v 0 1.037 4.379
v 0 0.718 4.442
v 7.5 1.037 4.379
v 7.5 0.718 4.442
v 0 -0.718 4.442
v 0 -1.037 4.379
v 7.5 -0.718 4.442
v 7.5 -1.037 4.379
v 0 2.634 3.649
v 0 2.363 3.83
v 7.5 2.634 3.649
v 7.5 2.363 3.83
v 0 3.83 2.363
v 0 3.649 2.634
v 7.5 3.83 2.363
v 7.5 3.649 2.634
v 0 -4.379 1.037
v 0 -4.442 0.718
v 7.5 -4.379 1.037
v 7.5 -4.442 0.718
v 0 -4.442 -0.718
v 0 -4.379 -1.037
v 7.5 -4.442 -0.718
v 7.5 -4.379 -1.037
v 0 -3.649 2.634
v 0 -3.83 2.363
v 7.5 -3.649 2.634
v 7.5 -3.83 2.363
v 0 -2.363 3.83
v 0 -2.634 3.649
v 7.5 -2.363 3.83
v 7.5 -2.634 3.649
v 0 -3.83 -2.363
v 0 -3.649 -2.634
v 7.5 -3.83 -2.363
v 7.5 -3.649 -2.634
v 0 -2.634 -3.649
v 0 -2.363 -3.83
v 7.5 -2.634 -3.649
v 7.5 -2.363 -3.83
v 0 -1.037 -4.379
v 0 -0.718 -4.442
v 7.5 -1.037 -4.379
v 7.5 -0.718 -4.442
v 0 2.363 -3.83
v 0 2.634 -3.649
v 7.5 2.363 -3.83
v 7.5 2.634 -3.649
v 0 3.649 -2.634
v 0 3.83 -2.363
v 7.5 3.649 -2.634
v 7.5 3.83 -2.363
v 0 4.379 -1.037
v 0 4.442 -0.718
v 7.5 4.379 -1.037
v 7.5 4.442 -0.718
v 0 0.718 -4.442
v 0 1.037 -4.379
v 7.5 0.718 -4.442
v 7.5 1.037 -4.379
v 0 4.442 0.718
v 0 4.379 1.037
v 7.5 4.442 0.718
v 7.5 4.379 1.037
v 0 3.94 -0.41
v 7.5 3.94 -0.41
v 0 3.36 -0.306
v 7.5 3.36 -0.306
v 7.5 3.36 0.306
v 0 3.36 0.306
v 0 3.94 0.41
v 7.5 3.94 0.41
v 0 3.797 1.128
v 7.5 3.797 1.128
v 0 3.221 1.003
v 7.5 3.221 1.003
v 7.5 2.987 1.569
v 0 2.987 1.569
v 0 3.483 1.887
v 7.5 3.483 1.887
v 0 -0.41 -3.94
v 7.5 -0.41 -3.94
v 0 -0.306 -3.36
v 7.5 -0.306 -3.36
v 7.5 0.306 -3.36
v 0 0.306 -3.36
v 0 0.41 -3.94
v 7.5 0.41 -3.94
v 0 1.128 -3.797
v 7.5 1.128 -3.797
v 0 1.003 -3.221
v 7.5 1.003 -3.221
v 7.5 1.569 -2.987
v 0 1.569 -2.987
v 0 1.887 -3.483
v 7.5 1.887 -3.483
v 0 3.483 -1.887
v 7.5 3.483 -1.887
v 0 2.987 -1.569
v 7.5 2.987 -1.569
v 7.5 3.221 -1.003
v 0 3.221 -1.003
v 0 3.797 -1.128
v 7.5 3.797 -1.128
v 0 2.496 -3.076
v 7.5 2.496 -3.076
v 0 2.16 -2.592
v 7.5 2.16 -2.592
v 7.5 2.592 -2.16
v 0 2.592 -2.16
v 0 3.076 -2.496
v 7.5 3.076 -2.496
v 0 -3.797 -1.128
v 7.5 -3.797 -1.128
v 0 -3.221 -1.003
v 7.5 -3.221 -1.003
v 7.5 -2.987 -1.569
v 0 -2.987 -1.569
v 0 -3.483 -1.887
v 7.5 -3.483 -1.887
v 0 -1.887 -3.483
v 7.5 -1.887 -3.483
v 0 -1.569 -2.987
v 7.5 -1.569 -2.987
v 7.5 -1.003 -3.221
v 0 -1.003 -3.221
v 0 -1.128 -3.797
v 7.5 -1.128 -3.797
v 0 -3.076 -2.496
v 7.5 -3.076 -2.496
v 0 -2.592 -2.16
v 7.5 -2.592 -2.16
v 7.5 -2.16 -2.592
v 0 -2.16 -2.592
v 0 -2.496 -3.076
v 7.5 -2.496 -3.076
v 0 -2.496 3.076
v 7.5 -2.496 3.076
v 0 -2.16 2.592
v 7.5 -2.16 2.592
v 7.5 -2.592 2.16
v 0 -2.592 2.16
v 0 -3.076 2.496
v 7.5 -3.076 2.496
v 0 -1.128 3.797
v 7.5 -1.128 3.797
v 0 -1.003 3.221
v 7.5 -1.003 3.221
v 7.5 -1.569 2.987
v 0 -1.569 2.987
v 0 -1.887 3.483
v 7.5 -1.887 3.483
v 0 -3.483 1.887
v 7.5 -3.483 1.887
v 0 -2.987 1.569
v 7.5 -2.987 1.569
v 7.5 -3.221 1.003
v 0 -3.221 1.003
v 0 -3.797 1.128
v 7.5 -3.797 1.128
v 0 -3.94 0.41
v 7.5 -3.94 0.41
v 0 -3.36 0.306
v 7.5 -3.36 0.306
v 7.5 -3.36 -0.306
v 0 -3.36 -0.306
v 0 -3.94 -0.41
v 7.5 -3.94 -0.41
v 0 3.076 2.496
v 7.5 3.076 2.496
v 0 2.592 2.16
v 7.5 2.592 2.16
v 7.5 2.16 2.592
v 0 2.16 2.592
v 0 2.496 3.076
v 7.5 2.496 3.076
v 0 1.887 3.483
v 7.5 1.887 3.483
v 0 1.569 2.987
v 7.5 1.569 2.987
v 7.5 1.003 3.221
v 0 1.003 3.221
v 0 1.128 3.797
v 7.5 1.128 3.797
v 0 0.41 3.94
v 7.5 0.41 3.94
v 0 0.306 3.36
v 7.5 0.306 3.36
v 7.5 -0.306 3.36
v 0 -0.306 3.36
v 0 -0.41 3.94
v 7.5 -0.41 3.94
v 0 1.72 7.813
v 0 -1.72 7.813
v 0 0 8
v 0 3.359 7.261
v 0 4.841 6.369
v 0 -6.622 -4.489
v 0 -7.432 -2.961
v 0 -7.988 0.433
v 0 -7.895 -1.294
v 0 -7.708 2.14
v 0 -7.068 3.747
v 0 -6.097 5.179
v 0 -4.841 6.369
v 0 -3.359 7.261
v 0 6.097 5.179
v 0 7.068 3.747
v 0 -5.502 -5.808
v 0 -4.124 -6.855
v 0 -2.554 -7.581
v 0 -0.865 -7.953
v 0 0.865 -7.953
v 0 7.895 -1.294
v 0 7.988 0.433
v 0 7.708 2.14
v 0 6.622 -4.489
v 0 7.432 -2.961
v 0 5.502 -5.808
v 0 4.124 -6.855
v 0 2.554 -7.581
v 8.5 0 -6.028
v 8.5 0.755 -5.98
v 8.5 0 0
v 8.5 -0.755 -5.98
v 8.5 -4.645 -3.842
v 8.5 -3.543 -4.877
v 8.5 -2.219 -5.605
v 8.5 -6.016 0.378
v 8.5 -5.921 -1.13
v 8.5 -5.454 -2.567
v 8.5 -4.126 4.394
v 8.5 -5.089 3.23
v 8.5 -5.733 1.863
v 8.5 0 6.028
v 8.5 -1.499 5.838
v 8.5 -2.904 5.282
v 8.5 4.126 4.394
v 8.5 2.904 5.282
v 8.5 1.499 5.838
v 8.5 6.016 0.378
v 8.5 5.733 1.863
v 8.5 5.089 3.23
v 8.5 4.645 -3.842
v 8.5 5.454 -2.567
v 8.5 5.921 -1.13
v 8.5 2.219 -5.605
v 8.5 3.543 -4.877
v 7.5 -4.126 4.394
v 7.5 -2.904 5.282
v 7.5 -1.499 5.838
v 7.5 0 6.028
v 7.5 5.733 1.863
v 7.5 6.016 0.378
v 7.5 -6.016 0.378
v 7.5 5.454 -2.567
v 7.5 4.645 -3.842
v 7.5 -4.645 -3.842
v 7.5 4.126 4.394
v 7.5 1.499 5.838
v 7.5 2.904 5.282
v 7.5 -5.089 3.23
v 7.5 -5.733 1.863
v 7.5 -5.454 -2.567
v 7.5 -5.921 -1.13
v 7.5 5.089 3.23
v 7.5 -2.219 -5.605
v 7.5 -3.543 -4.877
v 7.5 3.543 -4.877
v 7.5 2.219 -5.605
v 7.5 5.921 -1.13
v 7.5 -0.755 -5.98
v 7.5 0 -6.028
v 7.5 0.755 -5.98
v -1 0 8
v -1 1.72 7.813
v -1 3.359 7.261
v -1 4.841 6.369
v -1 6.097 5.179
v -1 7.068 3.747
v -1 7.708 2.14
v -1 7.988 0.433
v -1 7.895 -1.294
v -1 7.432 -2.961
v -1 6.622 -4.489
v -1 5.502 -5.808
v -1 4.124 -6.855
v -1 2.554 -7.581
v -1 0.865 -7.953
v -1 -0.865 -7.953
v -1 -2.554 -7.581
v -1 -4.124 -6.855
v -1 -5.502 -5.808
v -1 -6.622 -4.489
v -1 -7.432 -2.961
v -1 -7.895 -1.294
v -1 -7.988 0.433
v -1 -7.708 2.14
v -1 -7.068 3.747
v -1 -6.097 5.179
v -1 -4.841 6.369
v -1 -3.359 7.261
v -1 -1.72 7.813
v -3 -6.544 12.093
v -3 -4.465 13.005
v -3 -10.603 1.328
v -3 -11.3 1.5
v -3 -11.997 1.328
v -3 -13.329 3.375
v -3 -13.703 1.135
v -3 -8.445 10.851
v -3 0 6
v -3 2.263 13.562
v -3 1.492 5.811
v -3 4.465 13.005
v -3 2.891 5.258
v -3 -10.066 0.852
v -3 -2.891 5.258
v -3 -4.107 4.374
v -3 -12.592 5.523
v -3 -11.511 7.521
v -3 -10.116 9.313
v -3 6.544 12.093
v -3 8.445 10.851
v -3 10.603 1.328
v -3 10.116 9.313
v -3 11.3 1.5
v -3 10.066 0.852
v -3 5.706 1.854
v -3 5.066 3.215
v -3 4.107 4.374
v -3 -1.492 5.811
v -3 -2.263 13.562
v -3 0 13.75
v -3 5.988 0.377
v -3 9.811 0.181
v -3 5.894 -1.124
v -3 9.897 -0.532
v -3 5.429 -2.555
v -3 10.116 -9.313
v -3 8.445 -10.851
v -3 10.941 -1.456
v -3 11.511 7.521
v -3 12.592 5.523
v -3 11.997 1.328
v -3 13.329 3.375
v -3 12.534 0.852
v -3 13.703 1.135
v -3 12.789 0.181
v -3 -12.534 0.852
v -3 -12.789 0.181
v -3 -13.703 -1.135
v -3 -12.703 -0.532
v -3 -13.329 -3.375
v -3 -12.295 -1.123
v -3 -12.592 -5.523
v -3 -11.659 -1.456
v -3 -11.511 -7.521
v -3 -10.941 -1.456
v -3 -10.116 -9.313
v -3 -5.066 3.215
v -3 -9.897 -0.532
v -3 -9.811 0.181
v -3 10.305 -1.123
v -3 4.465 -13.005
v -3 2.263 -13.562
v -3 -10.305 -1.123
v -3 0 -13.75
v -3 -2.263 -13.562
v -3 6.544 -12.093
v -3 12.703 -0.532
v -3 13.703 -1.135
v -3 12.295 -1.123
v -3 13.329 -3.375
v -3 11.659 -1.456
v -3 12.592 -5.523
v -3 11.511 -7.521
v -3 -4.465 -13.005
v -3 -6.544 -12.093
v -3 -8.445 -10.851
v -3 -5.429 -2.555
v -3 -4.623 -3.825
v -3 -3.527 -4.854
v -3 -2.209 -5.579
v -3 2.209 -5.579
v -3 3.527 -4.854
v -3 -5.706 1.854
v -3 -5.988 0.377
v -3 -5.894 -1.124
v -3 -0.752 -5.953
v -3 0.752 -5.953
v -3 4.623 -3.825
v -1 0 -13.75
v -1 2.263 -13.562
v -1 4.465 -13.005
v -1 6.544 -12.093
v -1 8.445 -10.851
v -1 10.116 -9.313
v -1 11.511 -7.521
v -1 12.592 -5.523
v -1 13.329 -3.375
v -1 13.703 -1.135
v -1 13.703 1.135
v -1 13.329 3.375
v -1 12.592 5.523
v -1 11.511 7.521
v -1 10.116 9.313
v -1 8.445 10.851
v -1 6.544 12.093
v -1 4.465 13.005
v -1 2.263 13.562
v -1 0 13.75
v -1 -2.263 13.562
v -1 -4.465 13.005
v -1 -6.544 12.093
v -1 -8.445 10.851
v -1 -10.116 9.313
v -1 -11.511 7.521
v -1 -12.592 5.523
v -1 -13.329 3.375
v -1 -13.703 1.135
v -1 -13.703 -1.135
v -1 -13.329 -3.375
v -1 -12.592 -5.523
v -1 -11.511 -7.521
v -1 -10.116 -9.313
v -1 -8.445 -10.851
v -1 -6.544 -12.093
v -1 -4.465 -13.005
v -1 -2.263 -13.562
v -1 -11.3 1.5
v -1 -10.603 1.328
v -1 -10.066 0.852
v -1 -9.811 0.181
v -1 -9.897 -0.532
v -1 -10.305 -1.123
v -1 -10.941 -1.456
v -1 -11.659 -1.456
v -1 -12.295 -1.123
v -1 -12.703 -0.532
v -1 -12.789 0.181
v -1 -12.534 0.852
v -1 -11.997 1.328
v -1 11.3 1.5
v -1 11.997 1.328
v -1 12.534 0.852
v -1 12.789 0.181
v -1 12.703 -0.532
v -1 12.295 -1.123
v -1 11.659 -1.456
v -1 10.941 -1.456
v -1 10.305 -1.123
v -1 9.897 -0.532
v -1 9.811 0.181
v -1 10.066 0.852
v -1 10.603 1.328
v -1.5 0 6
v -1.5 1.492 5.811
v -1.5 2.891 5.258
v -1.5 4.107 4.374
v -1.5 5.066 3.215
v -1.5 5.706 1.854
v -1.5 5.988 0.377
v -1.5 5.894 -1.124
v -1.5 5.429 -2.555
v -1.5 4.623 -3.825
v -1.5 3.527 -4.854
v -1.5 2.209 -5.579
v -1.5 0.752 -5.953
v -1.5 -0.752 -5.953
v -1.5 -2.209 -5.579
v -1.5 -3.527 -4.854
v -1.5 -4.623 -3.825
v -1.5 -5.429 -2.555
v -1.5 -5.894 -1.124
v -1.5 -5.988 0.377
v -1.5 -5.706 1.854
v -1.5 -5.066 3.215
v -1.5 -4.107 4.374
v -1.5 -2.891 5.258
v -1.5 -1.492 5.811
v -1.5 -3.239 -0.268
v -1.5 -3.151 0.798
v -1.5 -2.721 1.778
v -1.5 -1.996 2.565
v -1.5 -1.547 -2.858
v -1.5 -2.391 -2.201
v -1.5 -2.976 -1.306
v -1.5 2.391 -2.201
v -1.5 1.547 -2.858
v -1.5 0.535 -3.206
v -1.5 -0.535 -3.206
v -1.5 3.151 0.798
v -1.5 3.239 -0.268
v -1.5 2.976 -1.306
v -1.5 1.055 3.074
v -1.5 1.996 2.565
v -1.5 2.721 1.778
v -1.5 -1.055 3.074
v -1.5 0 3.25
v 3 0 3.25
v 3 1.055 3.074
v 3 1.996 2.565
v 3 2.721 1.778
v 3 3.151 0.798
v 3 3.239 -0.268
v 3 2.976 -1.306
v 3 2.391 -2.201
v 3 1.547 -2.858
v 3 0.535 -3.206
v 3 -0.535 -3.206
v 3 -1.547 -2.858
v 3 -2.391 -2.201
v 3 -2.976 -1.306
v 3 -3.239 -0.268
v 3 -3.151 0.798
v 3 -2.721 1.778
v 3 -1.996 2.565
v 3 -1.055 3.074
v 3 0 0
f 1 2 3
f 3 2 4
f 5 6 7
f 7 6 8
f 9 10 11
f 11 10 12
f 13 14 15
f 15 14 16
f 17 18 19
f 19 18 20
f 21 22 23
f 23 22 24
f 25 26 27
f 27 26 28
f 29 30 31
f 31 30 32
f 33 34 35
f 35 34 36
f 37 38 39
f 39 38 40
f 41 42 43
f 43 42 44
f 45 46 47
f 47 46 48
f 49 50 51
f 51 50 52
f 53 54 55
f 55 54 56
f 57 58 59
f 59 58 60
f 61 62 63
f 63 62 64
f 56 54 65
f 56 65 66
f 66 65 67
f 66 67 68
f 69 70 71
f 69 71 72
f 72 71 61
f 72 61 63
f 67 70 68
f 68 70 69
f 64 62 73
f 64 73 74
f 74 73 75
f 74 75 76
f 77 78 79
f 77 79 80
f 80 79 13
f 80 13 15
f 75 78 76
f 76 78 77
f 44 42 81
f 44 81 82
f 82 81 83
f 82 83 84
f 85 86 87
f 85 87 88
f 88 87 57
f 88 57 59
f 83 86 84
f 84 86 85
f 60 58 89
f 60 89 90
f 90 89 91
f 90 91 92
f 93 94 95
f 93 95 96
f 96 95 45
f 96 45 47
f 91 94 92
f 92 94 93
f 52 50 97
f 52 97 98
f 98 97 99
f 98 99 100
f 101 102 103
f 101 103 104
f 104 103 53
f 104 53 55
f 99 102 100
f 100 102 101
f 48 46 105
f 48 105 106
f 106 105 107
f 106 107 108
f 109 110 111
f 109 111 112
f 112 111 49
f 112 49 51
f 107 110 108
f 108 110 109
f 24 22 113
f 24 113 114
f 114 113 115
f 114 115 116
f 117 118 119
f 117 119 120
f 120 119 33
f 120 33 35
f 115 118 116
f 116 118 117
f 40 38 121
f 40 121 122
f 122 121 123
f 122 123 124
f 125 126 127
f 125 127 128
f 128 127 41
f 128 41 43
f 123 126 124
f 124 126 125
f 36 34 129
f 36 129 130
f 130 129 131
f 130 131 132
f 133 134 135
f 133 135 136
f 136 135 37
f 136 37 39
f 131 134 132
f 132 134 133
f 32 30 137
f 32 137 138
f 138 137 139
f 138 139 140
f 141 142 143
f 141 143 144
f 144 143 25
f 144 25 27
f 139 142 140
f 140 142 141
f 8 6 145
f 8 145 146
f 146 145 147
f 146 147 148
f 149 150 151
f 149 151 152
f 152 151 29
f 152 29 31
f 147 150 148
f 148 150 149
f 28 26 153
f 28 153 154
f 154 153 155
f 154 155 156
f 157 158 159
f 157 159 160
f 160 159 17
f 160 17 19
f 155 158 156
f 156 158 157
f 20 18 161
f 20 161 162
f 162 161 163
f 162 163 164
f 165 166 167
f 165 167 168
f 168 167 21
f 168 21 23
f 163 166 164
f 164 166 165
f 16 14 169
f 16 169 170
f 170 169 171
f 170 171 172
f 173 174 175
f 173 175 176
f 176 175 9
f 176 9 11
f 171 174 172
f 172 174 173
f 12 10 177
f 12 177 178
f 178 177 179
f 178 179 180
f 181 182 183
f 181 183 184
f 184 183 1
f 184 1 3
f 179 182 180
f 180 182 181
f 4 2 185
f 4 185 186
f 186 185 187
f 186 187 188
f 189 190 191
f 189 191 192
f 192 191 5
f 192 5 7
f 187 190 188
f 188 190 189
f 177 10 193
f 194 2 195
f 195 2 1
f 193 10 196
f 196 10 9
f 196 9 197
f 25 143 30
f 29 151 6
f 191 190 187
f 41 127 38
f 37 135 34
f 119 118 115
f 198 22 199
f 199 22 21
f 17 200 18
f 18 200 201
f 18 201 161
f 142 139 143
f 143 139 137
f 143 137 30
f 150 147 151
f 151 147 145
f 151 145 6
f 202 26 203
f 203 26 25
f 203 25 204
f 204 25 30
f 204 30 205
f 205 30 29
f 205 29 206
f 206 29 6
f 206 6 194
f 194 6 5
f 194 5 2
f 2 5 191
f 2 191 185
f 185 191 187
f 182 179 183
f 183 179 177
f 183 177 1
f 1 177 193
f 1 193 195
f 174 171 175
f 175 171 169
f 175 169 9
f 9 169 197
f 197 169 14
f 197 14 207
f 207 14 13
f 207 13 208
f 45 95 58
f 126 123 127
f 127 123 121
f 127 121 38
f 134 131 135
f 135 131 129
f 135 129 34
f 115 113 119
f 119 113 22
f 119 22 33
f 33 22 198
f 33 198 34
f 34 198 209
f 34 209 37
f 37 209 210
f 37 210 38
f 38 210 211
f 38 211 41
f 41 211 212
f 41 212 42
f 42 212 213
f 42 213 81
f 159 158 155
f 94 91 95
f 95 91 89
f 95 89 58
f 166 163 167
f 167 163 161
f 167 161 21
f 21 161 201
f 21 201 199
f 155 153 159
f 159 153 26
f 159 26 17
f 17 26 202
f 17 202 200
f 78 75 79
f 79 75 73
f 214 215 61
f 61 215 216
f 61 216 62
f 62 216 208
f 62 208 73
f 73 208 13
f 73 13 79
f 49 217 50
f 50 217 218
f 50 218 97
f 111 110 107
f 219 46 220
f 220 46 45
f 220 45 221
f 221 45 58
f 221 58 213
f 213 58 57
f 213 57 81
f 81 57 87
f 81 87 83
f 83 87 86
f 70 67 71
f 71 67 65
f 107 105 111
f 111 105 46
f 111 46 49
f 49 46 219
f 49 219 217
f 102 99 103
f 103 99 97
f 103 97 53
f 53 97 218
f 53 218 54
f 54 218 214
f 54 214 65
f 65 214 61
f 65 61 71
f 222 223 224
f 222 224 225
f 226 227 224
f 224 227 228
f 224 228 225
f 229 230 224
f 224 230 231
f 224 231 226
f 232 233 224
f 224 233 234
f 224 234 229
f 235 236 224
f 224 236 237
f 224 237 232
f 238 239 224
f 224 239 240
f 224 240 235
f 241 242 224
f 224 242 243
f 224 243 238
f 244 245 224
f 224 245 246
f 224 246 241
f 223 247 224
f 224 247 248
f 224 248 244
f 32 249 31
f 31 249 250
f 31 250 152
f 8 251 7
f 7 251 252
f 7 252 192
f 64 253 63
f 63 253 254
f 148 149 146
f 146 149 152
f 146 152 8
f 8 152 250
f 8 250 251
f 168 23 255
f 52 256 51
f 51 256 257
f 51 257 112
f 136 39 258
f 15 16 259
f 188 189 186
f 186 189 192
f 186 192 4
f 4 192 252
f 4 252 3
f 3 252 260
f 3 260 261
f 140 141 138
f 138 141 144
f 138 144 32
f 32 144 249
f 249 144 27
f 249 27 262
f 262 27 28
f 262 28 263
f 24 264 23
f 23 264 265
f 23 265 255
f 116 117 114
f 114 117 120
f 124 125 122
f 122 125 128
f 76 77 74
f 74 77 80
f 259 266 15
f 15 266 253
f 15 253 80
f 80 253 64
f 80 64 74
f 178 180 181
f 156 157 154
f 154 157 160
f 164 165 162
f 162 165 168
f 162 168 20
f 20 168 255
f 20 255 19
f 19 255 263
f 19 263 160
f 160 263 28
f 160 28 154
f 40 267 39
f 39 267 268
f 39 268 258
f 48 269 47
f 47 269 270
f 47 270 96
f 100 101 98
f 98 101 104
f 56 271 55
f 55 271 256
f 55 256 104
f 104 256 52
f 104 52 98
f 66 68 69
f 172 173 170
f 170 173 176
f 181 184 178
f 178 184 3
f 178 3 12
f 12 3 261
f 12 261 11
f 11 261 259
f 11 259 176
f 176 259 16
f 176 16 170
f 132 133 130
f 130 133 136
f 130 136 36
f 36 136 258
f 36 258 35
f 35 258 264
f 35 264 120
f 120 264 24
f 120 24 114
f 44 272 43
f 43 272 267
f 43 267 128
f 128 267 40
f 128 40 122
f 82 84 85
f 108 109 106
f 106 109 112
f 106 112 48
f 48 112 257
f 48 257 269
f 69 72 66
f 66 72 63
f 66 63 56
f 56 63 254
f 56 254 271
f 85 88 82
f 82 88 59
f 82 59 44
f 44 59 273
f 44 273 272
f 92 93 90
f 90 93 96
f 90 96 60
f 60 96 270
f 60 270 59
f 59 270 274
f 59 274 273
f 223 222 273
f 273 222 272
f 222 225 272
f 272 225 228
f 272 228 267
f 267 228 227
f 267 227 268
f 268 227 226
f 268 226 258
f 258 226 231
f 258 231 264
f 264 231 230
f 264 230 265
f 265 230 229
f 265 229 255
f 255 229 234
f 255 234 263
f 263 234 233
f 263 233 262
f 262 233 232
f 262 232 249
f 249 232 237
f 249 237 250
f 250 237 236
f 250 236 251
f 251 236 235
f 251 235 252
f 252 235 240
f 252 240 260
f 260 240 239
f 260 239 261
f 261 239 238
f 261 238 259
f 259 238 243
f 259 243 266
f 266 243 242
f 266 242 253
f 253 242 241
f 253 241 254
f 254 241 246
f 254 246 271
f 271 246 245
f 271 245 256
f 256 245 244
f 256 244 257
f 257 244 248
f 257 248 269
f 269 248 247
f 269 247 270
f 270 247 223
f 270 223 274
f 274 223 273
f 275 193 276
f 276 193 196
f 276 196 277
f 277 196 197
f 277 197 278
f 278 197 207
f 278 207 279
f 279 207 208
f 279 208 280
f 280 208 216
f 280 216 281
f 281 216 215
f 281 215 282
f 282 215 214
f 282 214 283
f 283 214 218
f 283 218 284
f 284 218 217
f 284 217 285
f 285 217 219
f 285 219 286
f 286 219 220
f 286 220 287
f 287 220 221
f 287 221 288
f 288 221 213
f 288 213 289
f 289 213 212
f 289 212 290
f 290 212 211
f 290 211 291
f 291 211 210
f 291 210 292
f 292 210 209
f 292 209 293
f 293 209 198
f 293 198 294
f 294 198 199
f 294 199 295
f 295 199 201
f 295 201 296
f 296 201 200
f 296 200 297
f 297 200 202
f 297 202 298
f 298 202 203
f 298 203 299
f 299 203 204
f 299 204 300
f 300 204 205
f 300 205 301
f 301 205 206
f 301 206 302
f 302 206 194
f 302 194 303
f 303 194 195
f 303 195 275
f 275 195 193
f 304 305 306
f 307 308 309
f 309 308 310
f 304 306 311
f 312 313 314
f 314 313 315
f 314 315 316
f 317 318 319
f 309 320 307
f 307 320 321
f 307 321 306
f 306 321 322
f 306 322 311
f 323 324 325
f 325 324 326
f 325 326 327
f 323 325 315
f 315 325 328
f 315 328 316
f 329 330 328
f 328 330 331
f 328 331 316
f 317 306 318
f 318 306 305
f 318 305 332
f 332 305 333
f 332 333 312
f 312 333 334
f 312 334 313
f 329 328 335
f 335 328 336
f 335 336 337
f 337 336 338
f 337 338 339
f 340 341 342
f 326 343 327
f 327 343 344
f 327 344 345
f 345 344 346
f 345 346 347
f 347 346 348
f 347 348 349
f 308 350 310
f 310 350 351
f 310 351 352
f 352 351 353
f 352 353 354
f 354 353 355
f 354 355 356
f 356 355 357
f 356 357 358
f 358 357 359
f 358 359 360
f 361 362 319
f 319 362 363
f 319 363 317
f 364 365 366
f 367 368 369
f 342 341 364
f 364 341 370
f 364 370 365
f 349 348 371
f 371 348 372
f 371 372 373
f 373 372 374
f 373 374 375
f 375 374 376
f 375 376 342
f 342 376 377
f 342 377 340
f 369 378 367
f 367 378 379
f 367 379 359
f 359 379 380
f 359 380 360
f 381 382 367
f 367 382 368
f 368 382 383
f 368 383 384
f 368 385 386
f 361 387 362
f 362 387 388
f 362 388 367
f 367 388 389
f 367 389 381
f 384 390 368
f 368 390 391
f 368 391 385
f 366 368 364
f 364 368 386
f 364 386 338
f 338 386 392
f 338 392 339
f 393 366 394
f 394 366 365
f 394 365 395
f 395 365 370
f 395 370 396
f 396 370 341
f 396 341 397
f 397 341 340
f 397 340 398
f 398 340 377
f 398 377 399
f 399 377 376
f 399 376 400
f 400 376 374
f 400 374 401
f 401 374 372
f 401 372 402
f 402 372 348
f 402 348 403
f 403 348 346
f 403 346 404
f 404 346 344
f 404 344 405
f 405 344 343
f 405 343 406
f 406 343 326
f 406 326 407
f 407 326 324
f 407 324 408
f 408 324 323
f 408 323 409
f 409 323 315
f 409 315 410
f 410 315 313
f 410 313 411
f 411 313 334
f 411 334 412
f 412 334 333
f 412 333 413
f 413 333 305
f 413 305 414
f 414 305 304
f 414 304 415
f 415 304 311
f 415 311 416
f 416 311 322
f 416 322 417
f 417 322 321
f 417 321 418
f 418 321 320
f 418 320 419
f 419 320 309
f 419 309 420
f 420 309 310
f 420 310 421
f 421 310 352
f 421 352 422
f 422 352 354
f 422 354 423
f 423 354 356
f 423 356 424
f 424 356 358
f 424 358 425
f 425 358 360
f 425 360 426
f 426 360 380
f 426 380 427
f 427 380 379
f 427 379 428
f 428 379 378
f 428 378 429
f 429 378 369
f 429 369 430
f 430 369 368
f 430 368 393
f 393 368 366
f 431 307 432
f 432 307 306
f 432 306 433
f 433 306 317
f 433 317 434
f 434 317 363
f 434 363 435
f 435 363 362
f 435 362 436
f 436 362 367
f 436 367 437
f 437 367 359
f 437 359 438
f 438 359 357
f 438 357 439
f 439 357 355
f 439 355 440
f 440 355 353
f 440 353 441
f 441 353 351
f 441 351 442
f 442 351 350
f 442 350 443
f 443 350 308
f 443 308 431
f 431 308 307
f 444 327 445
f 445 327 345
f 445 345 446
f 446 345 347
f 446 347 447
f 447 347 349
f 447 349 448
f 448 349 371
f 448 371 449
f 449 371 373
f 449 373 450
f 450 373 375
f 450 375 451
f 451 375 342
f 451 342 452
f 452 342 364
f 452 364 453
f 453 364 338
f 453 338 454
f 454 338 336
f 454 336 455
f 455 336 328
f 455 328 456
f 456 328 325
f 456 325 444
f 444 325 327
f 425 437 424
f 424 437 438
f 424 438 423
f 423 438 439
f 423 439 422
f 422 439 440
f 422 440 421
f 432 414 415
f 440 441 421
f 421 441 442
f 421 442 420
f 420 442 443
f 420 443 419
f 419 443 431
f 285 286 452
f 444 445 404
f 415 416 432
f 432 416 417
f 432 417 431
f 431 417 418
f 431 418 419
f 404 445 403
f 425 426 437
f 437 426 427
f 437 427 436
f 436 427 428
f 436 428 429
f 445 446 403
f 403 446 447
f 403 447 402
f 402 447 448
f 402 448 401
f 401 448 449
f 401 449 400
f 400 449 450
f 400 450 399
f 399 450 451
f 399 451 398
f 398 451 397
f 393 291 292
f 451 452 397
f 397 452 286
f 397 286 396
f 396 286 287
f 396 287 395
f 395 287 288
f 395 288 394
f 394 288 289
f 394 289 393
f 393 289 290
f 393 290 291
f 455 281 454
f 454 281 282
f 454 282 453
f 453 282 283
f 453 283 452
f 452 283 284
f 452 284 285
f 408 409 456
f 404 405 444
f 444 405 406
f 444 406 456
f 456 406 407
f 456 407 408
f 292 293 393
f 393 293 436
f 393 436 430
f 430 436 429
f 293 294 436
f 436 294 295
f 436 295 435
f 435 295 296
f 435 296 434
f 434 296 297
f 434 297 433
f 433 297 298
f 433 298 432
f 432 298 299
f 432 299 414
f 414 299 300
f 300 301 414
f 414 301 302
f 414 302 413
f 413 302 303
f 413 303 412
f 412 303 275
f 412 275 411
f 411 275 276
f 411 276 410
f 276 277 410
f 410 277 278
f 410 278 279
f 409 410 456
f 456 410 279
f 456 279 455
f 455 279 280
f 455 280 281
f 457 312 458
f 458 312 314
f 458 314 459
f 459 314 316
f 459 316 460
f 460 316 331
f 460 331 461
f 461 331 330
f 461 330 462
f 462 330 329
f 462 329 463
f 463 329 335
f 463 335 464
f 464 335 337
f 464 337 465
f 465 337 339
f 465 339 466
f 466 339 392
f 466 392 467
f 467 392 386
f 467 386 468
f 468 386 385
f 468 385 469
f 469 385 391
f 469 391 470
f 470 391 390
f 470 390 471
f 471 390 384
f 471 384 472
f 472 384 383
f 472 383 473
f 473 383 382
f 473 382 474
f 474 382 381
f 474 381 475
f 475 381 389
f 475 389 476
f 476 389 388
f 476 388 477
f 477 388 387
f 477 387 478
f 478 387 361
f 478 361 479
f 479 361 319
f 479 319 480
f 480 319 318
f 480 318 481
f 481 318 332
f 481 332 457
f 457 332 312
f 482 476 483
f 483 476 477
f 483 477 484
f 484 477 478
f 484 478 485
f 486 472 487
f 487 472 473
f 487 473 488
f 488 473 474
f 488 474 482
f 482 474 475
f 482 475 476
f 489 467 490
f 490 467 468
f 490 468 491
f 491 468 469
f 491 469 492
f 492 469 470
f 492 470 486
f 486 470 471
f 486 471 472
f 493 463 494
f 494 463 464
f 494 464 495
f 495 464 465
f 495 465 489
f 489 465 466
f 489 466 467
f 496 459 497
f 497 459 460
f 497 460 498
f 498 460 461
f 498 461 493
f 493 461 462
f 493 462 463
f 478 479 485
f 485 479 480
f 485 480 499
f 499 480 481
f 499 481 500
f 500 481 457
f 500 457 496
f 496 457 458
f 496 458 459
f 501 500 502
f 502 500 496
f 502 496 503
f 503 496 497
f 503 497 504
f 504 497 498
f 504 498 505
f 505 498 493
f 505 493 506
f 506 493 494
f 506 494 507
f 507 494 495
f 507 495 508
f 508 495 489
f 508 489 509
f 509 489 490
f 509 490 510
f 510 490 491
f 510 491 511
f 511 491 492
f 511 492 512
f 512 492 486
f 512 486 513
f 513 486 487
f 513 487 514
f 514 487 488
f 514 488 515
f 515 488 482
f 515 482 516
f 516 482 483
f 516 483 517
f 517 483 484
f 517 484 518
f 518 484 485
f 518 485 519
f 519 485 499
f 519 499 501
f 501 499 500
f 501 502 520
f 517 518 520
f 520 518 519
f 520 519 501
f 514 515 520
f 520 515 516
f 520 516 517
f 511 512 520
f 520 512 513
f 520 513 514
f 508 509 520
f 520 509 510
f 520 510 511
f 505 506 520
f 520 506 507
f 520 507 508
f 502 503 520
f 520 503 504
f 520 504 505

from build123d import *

# Parameters (mm, degrees)
BASPROSKE_W             = 7.5
BASPROSKE_H             = 4.5
TOOTHCUT_DEPTH          = 10.836157786
TEETHCUTS_COUNT         = 16
TEETHCUTS_ANGLE         = 337.5
BORSKE_R                = 2.5
BORE_DEPTH              = 50.0000508
ESQUISSE4_R             = 6
BOSS_EXTRU_3_DEPTH      = 1
ESQUISSE5_R             = 6.027848577
ESQUISSE5_R_2           = 2.85
BOSS_EXTRU_4_DEPTH      = 1
ESQUISSE7_R             = 3.00711341
BOSS_EXTRU_6_DEPTH      = 8.5
ESQUISSE9_R             = 13.75
ESQUISSE9_R_2           = 5.5
BOSS_EXTRU_8_DEPTH      = 2
ESQUISSE10_R            = 1.5
ENL_V_MAT_EXTRU_3_DEPTH = 23.591480695
ESQUISSE11_R            = 3
ENL_V_MAT_EXTRU_4_DEPTH = 4
BOSS_EXTRU_9_START      = 4
ESQUISSE12_R            = 3
BOSS_EXTRU_9_DEPTH      = 4
ESQUISSE13_R            = 5.5
BOSS_EXTRU_10_DEPTH     = 2
ESQUISSE16_R            = 8
BOSS_EXTRU_11_DEPTH     = 1
ESQUISSE14_R            = 6
ENL_V_MAT_EXTRU_5_DEPTH = 1.5
ESQUISSE15_R            = 3.25
ENL_V_MAT_EXTRU_6_DEPTH = 4.5


with BuildPart() as part:
    # BasProSke → Base-Revolve (revolve)
    with BuildSketch(Plane(origin=(0, 0, 0), x_dir=(1, 0, 0), z_dir=(0, 1, 0)), mode=Mode.PRIVATE) as base_revolve_sk:
        with Locations((3.75, 2.25)):
            Rectangle(BASPROSKE_W, BASPROSKE_H)
    revolve(base_revolve_sk.sketch.rotate(Axis((-10, 0, 0), (1, 0, 0)), 180), axis=Axis((-10, 0, 0), (1, 0, 0)))

    # TooCutSke → ToothCut (cut, through all)
    with BuildSketch(Plane(origin=(0, 0, 0), x_dir=(0, 0, -1), z_dir=(1, 0, 0))):
        with BuildLine():
            ThreePointArc((0.306025637, 3.360092902), (0, 3.374), (-0.306025637, 3.360092902))
            ThreePointArc((-0.306025637, 3.360092902), (-0.415941512, 3.953968919), (-0.738171669, 4.464789776))
            ThreePointArc((-0.738171669, 4.464789776), (0, 4.5254), (0.738171669, 4.464789776))
            ThreePointArc((0.738171669, 4.464789776), (0.415941512, 3.953968919), (0.306025637, 3.360092902))
        make_face()
    toothcut = extrude(amount=TOOTHCUT_DEPTH, mode=Mode.SUBTRACT)

    # TeethCuts: ToothCut ×16 about axis
    teethcuts_axis = Axis((-10, 0, 0), (1, 0, 0))
    for i in range(1, TEETHCUTS_COUNT):
        add(toothcut.rotate(teethcuts_axis, i * TEETHCUTS_ANGLE / (TEETHCUTS_COUNT - 1)), mode=Mode.SUBTRACT)

    # BorSke → Bore (cut, symmetric)
    with BuildSketch(Plane(origin=(0, 0, 0), x_dir=(0, 0, -1), z_dir=(1, 0, 0))):
        with Locations(Location((0, 0, 0), (0, 0, 180))):
            Circle(BORSKE_R)
    extrude(amount=BORE_DEPTH, both=True, mode=Mode.SUBTRACT)

    # Esquisse4 → Boss.-Extru.3 (add)
    with BuildSketch(Plane.ZY):
        Circle(ESQUISSE4_R)
    extrude(amount=BOSS_EXTRU_3_DEPTH)

    # Esquisse5 → Boss.-Extru.4 (add)
    with BuildSketch(Plane(origin=(7.5, 0, 0), x_dir=(0, 0, -1), z_dir=(1, 0, 0))):
        Circle(ESQUISSE5_R)
        Circle(ESQUISSE5_R_2, mode=Mode.SUBTRACT)
    extrude(amount=BOSS_EXTRU_4_DEPTH)

    # Esquisse7 → Boss.-Extru.6 (add)
    with BuildSketch(Plane(origin=(0, 0, 0), x_dir=(0, 0, -1), z_dir=(1, 0, 0))):
        Circle(ESQUISSE7_R)
    extrude(amount=BOSS_EXTRU_6_DEPTH)

    # Esquisse9 → Boss.-Extru.8 (add)
    with BuildSketch(Plane.ZY.offset(1)):
        Circle(ESQUISSE9_R)
        Circle(ESQUISSE9_R_2, mode=Mode.SUBTRACT)
    extrude(amount=BOSS_EXTRU_8_DEPTH)

    # Esquisse10 → Enlèv. mat.-Extru.3 (cut, through all)
    with BuildSketch(Plane.ZY.offset(3)):
        with Locations((0, 11.3)):
            Circle(ESQUISSE10_R)
        with Locations((0, -11.3)):
            Circle(ESQUISSE10_R)
    extrude(amount=-ENL_V_MAT_EXTRU_3_DEPTH, mode=Mode.SUBTRACT)

    # Esquisse11 → Enlèv. mat.-Extru.4 (cut)
    with BuildSketch(Plane.ZY.offset(1)):
        Circle(ESQUISSE11_R)
    extrude(amount=-ENL_V_MAT_EXTRU_4_DEPTH, mode=Mode.SUBTRACT)

    # Esquisse12 → Boss.-Extru.9 (add)
    with BuildSketch(Plane.ZY.offset(-3).offset(BOSS_EXTRU_9_START)):
        Circle(ESQUISSE12_R)
    extrude(amount=-BOSS_EXTRU_9_DEPTH)

    # Esquisse13 → Boss.-Extru.10 (add)
    with BuildSketch(Plane.ZY.offset(1)):
        Circle(ESQUISSE13_R)
    extrude(amount=BOSS_EXTRU_10_DEPTH)

    # Esquisse16 → Boss.-Extru.11 (add)
    with BuildSketch(Plane(origin=(-1, 0, 0), x_dir=(0, 0, -1), z_dir=(1, 0, 0))):
        with Locations(Location((0, 0, 0), (0, 0, 180))):
            Circle(ESQUISSE16_R)
    extrude(amount=BOSS_EXTRU_11_DEPTH)

    # Esquisse14 → Enlèv. mat.-Extru.5 (cut)
    with BuildSketch(Plane.ZY.offset(3)):
        Circle(ESQUISSE14_R)
    extrude(amount=-ENL_V_MAT_EXTRU_5_DEPTH, mode=Mode.SUBTRACT)

    # Esquisse15 → Enlèv. mat.-Extru.6 (cut)
    with BuildSketch(Plane.ZY.offset(1.5)):
        Circle(ESQUISSE15_R)
    extrude(amount=-ENL_V_MAT_EXTRU_6_DEPTH, mode=Mode.SUBTRACT)


solid = part.part
